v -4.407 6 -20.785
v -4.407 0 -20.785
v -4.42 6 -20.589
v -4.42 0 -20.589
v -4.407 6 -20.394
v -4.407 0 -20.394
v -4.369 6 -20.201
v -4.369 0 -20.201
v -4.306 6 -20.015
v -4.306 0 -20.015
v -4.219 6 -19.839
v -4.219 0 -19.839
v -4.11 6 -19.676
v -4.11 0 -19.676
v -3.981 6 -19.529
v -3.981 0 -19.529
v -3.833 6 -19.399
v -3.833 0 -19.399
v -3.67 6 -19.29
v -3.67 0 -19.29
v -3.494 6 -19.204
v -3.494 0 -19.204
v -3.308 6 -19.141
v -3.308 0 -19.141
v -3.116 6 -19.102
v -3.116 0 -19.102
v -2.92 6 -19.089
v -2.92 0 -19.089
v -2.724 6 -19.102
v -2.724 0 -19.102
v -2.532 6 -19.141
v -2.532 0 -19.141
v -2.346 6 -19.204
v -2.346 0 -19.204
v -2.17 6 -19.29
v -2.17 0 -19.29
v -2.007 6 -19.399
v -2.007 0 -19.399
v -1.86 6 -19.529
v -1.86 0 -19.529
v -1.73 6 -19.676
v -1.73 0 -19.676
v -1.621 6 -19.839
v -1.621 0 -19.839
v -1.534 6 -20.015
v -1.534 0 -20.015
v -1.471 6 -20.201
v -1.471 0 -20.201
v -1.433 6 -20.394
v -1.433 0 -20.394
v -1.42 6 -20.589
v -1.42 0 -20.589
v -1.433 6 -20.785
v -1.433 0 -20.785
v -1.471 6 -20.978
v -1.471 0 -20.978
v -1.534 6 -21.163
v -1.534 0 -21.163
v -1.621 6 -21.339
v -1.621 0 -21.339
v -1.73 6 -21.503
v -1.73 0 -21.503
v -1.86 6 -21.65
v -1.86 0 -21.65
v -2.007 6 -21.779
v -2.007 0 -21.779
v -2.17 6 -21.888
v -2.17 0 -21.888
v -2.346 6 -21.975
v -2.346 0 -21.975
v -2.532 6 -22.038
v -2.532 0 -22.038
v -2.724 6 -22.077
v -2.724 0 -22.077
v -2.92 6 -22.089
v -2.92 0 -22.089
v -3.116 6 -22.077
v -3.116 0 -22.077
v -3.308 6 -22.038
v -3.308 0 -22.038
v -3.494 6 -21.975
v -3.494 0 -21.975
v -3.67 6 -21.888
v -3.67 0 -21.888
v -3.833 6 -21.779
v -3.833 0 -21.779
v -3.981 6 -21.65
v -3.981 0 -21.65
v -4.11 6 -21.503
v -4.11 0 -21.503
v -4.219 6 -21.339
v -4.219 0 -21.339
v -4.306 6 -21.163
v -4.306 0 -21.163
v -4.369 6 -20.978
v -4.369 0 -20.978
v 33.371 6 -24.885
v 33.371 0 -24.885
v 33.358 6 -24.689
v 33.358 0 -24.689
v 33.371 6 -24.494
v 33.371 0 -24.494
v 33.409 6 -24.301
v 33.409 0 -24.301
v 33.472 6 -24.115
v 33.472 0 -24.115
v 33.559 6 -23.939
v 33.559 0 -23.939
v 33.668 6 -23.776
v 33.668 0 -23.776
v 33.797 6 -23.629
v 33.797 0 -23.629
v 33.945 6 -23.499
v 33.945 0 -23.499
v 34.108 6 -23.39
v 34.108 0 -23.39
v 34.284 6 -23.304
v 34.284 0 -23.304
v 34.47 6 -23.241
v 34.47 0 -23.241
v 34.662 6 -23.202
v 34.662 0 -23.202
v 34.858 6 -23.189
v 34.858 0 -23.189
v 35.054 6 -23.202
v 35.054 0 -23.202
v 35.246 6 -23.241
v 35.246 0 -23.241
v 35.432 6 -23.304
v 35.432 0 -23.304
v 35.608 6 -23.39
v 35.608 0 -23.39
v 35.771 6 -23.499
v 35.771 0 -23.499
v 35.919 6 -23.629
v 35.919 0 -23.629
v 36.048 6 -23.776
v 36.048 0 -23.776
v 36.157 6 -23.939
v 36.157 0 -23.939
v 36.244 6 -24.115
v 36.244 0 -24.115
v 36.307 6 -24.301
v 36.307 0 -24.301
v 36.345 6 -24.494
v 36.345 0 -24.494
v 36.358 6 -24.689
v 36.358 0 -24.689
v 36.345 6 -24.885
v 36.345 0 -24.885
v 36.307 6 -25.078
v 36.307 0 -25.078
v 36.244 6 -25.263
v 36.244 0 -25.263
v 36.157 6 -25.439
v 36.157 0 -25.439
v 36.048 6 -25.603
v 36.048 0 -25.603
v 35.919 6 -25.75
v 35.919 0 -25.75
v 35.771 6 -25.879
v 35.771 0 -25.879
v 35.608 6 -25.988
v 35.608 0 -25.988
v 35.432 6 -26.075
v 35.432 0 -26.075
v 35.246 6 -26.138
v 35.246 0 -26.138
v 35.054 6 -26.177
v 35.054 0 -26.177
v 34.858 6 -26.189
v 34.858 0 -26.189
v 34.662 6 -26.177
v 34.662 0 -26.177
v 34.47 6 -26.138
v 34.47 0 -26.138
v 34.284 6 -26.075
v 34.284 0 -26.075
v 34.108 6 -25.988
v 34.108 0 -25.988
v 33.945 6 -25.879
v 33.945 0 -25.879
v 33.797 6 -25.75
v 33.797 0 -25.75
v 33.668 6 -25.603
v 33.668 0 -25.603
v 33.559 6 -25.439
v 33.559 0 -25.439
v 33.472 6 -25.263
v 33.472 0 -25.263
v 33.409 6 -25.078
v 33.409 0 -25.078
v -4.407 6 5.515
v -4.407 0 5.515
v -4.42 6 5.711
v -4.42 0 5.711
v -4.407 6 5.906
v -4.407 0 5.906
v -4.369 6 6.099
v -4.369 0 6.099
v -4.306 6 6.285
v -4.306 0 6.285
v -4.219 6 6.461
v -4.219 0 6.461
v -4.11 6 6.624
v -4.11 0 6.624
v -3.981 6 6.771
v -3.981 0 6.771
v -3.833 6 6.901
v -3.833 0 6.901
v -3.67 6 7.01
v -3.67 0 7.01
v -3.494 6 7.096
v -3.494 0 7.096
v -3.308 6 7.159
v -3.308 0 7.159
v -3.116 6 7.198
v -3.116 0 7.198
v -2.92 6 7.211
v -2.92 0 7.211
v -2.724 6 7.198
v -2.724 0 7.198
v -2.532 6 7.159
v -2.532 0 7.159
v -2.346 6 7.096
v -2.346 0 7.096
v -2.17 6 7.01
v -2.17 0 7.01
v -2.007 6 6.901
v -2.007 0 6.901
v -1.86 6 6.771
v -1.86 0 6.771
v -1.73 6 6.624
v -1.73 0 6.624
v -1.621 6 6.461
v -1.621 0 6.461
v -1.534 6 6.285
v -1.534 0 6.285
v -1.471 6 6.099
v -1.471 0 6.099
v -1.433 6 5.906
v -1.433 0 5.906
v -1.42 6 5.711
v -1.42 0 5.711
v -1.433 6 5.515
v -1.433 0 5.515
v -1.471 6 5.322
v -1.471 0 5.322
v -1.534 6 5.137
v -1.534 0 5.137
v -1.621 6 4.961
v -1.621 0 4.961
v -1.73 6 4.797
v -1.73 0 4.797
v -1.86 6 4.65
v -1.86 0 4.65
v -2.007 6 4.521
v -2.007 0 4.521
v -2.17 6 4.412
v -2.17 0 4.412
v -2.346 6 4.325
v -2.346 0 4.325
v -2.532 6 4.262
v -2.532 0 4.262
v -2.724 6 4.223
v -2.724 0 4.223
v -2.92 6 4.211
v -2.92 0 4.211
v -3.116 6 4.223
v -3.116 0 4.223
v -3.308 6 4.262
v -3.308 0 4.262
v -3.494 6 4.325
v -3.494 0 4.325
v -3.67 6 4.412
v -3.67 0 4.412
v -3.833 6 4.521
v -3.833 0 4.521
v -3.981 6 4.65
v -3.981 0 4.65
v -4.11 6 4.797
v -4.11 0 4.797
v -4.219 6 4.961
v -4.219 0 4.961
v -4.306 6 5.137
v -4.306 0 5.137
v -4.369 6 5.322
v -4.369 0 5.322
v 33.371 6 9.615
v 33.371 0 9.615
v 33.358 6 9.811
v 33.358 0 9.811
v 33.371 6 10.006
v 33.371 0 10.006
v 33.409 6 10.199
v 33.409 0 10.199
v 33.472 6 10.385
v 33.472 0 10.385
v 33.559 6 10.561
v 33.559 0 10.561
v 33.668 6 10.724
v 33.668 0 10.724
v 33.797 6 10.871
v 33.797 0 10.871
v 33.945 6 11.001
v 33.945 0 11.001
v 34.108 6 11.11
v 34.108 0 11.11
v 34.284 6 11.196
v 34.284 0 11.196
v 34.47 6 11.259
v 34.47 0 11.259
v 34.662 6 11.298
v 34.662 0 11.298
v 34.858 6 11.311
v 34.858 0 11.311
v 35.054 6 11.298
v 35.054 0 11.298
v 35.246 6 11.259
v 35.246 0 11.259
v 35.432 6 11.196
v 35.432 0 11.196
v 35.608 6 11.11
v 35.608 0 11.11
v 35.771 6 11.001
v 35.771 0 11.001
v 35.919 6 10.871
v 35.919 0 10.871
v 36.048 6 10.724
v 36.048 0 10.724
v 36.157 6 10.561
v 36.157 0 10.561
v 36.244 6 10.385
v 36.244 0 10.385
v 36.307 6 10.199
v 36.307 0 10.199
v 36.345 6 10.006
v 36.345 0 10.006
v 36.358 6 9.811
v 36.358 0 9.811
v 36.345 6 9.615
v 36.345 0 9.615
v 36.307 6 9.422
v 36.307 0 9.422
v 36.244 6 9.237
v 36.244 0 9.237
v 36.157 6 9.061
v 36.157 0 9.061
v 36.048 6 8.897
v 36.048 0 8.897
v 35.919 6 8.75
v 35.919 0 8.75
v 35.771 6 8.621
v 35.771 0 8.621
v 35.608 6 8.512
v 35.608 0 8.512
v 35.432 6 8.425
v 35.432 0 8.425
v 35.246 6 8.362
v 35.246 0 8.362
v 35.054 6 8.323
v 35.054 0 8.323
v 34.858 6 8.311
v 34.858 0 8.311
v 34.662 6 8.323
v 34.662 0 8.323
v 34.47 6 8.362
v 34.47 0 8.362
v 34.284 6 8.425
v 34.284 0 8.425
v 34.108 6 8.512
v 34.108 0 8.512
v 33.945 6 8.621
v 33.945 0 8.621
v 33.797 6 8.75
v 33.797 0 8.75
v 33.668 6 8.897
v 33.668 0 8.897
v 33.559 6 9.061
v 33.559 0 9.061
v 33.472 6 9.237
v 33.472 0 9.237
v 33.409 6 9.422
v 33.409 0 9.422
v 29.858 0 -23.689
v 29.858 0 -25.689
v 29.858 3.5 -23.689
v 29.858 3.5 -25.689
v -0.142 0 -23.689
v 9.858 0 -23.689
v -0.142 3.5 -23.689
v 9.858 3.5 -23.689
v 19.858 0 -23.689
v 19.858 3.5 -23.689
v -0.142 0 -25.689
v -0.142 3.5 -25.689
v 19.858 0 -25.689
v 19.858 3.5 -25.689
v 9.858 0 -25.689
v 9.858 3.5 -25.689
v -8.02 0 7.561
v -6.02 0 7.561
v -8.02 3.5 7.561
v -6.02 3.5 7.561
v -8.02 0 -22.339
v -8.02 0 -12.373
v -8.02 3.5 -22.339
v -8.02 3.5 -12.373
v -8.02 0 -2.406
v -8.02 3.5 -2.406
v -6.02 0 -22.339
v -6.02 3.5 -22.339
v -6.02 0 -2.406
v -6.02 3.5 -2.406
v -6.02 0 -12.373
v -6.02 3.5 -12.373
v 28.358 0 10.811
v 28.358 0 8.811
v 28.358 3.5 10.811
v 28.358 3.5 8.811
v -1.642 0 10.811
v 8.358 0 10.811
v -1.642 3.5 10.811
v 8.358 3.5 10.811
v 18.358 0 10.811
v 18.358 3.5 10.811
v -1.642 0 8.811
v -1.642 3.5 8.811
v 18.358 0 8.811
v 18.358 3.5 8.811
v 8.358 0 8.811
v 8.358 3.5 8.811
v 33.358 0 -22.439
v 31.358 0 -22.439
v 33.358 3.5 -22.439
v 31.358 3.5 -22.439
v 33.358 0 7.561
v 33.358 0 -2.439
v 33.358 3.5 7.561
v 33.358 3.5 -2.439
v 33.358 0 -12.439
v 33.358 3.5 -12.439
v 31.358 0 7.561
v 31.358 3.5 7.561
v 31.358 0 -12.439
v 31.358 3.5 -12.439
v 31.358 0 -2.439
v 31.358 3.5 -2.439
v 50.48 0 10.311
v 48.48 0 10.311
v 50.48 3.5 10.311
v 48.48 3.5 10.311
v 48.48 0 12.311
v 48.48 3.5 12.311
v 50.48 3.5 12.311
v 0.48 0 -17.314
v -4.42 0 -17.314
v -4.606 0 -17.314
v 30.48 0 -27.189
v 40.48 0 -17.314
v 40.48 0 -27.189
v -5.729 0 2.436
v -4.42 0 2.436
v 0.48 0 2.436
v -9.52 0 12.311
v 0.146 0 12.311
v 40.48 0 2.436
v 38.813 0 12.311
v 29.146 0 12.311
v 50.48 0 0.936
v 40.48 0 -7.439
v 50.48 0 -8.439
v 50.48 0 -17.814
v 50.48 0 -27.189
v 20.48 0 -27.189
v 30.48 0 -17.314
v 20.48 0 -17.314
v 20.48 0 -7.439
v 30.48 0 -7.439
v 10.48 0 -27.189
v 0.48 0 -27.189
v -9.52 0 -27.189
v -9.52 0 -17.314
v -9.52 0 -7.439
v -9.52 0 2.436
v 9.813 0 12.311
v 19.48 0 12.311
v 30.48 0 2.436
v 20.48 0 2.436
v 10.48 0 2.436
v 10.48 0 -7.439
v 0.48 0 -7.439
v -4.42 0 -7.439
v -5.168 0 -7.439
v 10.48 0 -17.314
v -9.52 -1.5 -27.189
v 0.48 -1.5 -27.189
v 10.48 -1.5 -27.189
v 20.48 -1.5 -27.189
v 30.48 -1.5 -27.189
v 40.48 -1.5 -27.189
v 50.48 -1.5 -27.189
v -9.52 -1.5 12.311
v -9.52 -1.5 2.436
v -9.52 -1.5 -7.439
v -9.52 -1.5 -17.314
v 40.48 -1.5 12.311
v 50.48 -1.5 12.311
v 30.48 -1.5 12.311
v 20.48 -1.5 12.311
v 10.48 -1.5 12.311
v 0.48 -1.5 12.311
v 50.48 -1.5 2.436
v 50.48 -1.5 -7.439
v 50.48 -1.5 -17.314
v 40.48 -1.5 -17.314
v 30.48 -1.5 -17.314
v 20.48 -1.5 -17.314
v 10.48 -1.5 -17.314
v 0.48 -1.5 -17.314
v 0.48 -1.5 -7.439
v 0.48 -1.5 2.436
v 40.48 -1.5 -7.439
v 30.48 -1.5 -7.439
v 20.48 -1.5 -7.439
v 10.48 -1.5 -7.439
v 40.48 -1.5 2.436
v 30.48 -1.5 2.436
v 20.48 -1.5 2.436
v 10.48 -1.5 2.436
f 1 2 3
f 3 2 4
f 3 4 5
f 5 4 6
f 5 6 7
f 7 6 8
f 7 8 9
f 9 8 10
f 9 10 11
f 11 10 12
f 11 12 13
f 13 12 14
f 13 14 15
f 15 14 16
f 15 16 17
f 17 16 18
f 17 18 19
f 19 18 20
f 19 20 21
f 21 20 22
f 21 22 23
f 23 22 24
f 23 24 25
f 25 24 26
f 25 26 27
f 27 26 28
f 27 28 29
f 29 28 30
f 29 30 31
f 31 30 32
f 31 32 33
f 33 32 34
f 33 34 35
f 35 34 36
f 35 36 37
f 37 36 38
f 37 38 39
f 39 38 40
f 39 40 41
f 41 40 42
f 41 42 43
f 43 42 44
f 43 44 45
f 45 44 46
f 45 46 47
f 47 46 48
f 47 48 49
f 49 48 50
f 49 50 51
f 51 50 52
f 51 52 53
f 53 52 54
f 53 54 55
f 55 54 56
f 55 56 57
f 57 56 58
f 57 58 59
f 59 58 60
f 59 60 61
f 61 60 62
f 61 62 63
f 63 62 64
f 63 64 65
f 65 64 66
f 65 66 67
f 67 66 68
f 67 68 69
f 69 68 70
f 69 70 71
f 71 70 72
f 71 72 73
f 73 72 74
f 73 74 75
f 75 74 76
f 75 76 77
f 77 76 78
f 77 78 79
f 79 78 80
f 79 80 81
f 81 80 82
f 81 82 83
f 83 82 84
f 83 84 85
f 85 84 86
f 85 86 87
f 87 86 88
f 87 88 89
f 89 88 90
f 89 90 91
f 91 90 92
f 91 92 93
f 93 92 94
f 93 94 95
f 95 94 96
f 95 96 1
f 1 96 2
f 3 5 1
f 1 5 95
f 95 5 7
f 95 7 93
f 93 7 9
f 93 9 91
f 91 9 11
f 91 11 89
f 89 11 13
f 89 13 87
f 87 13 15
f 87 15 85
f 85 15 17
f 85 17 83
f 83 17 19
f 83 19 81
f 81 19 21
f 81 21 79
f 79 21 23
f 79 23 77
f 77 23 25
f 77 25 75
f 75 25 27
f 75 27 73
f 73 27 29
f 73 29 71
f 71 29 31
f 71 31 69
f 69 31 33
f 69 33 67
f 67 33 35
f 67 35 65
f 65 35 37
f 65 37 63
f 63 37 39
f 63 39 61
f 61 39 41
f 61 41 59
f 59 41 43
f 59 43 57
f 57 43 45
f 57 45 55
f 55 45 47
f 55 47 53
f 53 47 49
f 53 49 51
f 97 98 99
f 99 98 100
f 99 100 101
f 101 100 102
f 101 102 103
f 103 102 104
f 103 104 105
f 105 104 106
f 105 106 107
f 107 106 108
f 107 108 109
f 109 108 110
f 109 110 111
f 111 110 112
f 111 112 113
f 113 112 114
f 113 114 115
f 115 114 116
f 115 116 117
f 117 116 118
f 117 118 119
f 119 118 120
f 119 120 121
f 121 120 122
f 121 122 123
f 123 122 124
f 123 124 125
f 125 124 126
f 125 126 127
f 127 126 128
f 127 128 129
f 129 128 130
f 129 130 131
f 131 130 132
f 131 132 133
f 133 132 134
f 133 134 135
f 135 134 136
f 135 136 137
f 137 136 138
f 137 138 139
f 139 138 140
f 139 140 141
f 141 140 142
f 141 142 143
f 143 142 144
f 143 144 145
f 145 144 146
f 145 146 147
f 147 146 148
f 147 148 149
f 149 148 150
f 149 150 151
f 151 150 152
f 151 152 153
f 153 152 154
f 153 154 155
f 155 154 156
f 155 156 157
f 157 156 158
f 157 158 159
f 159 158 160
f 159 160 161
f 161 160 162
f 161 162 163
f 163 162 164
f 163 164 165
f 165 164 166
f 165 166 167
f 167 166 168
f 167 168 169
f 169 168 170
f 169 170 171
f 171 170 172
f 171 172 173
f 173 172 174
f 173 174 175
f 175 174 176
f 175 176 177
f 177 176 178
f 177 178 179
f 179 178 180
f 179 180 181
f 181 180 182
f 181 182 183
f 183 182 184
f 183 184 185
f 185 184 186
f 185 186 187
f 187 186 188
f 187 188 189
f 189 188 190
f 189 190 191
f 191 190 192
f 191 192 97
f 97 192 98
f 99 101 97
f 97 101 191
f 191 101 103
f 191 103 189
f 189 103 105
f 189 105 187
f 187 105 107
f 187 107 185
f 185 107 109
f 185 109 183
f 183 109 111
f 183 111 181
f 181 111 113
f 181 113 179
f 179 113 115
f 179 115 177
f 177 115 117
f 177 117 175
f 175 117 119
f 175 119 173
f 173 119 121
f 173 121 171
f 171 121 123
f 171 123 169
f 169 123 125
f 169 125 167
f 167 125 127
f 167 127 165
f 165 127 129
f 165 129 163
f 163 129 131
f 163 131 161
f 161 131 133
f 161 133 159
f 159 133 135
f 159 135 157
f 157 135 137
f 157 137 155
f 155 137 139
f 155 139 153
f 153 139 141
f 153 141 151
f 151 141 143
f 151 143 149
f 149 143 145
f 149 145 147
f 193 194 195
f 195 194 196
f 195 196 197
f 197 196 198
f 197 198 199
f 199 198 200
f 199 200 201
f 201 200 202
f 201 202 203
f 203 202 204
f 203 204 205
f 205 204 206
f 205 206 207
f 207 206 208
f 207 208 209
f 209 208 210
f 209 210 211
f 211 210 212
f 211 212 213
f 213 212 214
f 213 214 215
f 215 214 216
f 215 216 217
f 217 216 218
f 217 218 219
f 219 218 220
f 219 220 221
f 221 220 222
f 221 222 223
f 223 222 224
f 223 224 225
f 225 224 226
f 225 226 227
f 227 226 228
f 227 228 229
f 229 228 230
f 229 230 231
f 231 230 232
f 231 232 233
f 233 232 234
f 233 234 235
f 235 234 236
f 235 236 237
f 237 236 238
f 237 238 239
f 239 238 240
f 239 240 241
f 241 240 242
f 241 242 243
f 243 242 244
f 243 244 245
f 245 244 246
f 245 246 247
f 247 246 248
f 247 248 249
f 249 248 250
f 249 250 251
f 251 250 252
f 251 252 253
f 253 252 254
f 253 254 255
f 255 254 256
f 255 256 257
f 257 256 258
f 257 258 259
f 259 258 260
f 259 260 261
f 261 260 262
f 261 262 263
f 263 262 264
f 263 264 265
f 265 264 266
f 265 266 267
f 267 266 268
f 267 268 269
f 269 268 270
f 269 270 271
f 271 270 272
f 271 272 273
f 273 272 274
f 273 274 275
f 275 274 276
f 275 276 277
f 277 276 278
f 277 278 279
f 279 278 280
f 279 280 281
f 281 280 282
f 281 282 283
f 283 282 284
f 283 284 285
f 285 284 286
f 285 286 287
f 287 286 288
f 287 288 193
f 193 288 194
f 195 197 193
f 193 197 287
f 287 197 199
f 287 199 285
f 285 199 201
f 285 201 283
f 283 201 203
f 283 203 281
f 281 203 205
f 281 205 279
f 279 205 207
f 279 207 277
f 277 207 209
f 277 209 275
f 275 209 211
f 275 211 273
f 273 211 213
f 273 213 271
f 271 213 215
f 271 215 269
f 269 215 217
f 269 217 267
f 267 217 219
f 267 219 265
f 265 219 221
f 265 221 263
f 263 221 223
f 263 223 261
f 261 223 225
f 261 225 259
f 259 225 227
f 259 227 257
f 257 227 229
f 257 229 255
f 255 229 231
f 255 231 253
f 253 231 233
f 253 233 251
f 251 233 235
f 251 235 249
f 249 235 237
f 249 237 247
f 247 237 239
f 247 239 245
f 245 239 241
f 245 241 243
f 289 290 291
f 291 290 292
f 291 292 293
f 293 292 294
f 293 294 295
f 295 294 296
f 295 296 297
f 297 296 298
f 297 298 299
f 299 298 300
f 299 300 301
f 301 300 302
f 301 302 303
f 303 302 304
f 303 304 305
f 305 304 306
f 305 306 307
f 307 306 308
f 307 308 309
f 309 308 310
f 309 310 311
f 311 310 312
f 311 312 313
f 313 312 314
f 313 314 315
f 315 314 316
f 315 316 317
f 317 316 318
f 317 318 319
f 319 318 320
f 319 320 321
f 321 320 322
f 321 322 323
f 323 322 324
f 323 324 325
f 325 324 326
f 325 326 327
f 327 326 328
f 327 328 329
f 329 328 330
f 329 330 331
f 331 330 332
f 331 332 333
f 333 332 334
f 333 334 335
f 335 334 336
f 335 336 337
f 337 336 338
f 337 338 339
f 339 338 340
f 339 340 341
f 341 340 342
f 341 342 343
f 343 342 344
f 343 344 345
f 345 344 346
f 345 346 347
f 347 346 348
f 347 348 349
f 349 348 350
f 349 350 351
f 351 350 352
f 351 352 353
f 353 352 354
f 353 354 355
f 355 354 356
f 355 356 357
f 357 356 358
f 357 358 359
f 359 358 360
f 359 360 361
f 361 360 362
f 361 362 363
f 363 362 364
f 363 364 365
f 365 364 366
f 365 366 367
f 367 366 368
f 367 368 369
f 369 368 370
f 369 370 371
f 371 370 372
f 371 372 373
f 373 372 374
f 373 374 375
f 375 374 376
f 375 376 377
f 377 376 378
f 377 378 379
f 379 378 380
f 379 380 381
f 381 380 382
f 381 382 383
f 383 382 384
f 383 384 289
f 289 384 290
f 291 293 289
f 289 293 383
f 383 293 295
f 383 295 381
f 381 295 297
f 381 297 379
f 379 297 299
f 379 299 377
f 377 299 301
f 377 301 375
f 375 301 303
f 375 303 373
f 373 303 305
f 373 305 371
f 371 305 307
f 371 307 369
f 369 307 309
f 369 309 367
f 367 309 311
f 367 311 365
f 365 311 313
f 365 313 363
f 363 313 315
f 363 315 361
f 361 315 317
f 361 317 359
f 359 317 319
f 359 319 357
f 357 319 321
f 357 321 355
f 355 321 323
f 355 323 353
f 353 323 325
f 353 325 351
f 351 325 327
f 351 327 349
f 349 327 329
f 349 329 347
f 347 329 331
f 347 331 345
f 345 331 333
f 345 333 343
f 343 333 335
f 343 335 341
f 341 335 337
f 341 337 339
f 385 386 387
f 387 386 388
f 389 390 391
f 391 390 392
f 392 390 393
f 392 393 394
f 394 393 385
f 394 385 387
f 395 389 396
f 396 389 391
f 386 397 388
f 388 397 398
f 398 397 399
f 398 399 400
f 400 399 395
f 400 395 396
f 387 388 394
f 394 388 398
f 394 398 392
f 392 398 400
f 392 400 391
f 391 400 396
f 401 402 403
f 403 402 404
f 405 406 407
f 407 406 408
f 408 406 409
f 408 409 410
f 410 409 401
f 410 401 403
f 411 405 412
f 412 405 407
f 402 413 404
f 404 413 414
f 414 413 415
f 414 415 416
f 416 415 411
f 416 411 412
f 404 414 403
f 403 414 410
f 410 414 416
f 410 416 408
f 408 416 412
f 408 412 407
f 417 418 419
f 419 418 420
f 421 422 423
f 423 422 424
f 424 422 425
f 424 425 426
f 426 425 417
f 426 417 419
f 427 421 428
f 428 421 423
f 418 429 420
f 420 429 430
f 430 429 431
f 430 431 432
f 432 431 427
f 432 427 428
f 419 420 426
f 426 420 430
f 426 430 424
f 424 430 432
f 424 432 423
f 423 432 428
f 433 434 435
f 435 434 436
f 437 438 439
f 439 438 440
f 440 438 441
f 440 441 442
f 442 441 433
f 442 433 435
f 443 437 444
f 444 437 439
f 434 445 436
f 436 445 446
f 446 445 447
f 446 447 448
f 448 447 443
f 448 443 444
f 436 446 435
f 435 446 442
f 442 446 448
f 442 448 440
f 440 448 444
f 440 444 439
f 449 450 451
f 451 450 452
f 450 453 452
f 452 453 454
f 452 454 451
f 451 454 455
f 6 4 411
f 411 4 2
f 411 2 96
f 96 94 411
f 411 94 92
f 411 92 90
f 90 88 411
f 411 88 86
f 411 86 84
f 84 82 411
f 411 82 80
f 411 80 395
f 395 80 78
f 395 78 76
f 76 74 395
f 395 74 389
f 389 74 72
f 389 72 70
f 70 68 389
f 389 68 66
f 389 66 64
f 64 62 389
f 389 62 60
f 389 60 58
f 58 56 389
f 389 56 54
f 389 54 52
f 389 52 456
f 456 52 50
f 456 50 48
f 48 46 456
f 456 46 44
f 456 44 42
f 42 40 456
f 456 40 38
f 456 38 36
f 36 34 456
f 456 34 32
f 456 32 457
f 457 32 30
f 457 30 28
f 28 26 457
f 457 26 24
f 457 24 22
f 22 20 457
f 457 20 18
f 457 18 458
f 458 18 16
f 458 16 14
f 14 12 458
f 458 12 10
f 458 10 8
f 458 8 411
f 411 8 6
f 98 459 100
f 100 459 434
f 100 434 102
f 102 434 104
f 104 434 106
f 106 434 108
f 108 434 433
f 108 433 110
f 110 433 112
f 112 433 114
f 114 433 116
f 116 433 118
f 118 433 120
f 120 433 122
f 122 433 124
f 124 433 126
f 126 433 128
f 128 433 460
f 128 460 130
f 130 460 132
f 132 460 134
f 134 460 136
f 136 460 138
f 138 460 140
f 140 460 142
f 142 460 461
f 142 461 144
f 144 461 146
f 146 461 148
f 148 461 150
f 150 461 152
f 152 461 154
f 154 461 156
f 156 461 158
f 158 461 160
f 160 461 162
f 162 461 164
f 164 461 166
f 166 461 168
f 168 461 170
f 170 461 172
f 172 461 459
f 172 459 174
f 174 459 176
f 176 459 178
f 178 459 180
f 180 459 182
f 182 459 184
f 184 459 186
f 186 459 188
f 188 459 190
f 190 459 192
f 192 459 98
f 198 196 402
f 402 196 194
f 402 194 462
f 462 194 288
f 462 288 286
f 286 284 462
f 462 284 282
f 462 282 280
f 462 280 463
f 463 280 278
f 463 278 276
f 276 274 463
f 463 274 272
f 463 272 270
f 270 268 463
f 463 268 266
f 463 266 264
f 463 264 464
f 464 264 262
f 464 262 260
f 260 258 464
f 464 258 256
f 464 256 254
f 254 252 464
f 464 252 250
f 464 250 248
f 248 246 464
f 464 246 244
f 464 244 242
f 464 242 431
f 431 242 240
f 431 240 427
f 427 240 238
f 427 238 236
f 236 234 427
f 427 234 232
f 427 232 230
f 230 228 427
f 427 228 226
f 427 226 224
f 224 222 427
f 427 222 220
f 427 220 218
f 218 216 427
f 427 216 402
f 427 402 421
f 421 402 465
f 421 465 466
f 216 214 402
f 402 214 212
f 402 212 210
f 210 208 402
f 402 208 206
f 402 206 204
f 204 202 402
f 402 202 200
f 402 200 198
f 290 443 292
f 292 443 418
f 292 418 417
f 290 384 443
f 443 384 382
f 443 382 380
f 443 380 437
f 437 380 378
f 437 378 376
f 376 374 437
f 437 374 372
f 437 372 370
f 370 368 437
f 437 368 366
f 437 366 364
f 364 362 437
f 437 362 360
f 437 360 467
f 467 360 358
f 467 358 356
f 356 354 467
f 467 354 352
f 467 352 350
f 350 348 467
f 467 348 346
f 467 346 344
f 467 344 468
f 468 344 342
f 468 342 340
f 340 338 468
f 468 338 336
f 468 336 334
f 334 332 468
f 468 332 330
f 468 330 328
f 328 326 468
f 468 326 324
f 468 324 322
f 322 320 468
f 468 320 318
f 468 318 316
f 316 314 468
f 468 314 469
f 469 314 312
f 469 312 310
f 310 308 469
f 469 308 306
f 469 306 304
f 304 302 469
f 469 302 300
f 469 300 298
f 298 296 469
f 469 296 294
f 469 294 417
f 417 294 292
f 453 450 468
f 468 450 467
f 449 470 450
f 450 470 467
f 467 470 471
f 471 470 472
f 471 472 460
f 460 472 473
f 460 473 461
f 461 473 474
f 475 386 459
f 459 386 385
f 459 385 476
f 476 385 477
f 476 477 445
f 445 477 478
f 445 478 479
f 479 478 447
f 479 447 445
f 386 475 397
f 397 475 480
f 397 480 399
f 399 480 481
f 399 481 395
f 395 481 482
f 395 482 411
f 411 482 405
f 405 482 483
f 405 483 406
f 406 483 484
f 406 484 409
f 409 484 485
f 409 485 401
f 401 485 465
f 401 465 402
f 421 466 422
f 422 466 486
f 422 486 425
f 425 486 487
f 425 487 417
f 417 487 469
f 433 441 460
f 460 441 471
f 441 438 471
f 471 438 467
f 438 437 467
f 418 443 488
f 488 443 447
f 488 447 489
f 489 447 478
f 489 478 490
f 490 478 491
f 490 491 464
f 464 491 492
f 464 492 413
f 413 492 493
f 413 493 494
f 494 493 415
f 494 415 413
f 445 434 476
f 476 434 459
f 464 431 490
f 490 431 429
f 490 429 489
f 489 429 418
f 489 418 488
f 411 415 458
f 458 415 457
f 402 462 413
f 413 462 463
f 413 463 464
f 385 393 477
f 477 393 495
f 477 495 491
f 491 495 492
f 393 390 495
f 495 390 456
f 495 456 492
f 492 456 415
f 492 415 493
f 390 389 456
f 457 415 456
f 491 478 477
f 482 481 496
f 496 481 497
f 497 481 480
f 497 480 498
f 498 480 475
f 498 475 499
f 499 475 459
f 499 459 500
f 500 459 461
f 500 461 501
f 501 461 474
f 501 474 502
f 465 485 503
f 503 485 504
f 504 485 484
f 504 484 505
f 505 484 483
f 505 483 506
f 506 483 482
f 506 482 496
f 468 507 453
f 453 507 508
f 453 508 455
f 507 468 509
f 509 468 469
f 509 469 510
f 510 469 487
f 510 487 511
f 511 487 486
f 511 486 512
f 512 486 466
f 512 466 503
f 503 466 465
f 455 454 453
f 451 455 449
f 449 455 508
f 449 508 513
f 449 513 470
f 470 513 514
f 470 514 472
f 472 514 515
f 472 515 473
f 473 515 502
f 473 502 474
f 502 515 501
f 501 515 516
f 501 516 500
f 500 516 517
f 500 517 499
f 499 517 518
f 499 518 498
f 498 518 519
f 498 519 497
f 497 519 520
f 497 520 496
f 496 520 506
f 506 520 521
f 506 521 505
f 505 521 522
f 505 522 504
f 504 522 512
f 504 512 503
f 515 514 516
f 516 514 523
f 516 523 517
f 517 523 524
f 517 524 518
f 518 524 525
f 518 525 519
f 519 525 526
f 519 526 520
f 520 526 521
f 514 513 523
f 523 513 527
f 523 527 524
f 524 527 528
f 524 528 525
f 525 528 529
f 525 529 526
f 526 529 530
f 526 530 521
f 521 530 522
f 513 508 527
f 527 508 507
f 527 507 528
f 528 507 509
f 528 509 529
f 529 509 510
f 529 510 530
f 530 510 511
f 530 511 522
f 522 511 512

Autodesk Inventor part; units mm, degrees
ref_plane "YZ Plane" through (0, 0, 0) normal (1, 0, 0) x (0, 1, 0)
ref_plane "XZ Plane" through (0, 0, 0) normal (0, 1, 0) x (-1, 0, 0)
ref_plane "XY Plane" through (0, 0, 0) normal (0, 0, 1) x (1, 0, 0)
sketch "Sketch5" plane through (0, 0, 0) normal (0, 1, 0) x (-1, 0, 0)
  line L0 (9.5203, 12.3105) -> (-50.4797, 12.3105)
  line L1 (-50.4797, 12.3105) -> (-50.4797, -27.1895)
  line L2 (-50.4797, -27.1895) -> (9.5203, -27.1895)
  line L3 (9.5203, -27.1895) -> (9.5203, 12.3105)
  line L4 (-33.3579, -22.4395) -> (-31.3579, -22.4395)
  line L5 (-31.3579, -22.4395) -> (-31.3579, 7.5605)
  line L6 (-31.3579, 7.5605) -> (-33.3579, 7.5605)
  line L7 (-33.3579, 7.5605) -> (-33.3579, -22.4395)
  line L8 (8.0203, 7.5605) -> (6.0203, 7.5605)
  line L9 (6.0203, 7.5605) -> (6.0203, -22.3395)
  line L10 (6.0203, -22.3395) -> (8.0203, -22.3395)
  line L11 (8.0203, -22.3395) -> (8.0203, 7.5605)
  circle A0 centre (2.9203, -20.5895) radius 1.5
  circle A1 centre (2.9203, 5.7105) radius 1.5
  circle A2 centre (-34.8579, -24.6895) radius 1.5
  circle A3 centre (-34.8579, 9.8105) radius 1.5
  line L12 (-28.3579, 10.8105) -> (1.6421, 10.8105)
  line L13 (1.6421, 10.8105) -> (1.6421, 8.8105)
  line L14 (1.6421, 8.8105) -> (-28.3579, 8.8105)
  line L15 (-28.3579, 8.8105) -> (-28.3579, 10.8105)
  line L16 (-29.8579, -23.6895) -> (0.1421, -23.6895)
  line L17 (0.1421, -23.6895) -> (0.1421, -25.6895)
  line L18 (0.1421, -25.6895) -> (-29.8579, -25.6895)
  line L19 (-29.8579, -25.6895) -> (-29.8579, -23.6895)
  line L20 (-50.4797, 12.3105) -> (-48.4797, 12.3105)
  line L21 (-48.4797, 12.3105) -> (-48.4797, 10.3105)
  line L22 (-48.4797, 10.3105) -> (-50.4797, 10.3105)
  line L23 (-50.4797, 10.3105) -> (-50.4797, 12.3105)
  point P0 (0, 0)
  point P1 (-29.8579, -24.6895)
  dimension "d9" = 60
  dimension "d10" = 39.5
  dimension "d24" = 2
  dimension "d27" = 4.75
  dimension "d29" = 2
  dimension "d31" = 1.5
  dimension "d32" = 4.75
  dimension "d33" = 4.85
  dimension "d40" = 3
  dimension "d41" = 6.6
  dimension "d42" = 6.6
  dimension "d43" = 3
  dimension "d44" = 6.6
  dimension "d45" = 6.6
  dimension "d46" = 3
  dimension "d47" = 2.5
  dimension "d49" = 3
  dimension "d50" = 2.5
  dimension "d59" = 35
  dimension "d62" = 1.5
  dimension "d66" = 35
  dimension "d73" = 1.5
  dimension "d74" = 30
  dimension "d75" = 5
  dimension "d76" = 2
  dimension "d77" = 5
  dimension "d78" = 1.5
  dimension "d79" = 30
  dimension "d80" = 2
  dimension "d81" = 2
  dimension "d82" = 2
extrude "Extrusion8" add sketch "Sketch5" against normal blind 1.5 contours L3 L2 L1 L22 L21 L0 | L21 L22 L1 L0 | L7 L6 L5 L4 | L11 L10 L9 L8 | A0 | A1 | A2 | A3 | L12 L13 L14 L15 | L16 L17 L18 L19
extrude "Extrusion9" add sketch "Sketch5" along normal blind 3.5 contours L21 L22 L1 L0 | L7 L6 L5 L4 | L11 L10 L9 L8 | L12 L13 L14 L15 | L16 L17 L18 L19
extrude "Extrusion10" add sketch "Sketch5" along normal blind 6 contours A0 | A1 | A2 | A3
properties part number "RFID-RC522 Holder 3.3"
